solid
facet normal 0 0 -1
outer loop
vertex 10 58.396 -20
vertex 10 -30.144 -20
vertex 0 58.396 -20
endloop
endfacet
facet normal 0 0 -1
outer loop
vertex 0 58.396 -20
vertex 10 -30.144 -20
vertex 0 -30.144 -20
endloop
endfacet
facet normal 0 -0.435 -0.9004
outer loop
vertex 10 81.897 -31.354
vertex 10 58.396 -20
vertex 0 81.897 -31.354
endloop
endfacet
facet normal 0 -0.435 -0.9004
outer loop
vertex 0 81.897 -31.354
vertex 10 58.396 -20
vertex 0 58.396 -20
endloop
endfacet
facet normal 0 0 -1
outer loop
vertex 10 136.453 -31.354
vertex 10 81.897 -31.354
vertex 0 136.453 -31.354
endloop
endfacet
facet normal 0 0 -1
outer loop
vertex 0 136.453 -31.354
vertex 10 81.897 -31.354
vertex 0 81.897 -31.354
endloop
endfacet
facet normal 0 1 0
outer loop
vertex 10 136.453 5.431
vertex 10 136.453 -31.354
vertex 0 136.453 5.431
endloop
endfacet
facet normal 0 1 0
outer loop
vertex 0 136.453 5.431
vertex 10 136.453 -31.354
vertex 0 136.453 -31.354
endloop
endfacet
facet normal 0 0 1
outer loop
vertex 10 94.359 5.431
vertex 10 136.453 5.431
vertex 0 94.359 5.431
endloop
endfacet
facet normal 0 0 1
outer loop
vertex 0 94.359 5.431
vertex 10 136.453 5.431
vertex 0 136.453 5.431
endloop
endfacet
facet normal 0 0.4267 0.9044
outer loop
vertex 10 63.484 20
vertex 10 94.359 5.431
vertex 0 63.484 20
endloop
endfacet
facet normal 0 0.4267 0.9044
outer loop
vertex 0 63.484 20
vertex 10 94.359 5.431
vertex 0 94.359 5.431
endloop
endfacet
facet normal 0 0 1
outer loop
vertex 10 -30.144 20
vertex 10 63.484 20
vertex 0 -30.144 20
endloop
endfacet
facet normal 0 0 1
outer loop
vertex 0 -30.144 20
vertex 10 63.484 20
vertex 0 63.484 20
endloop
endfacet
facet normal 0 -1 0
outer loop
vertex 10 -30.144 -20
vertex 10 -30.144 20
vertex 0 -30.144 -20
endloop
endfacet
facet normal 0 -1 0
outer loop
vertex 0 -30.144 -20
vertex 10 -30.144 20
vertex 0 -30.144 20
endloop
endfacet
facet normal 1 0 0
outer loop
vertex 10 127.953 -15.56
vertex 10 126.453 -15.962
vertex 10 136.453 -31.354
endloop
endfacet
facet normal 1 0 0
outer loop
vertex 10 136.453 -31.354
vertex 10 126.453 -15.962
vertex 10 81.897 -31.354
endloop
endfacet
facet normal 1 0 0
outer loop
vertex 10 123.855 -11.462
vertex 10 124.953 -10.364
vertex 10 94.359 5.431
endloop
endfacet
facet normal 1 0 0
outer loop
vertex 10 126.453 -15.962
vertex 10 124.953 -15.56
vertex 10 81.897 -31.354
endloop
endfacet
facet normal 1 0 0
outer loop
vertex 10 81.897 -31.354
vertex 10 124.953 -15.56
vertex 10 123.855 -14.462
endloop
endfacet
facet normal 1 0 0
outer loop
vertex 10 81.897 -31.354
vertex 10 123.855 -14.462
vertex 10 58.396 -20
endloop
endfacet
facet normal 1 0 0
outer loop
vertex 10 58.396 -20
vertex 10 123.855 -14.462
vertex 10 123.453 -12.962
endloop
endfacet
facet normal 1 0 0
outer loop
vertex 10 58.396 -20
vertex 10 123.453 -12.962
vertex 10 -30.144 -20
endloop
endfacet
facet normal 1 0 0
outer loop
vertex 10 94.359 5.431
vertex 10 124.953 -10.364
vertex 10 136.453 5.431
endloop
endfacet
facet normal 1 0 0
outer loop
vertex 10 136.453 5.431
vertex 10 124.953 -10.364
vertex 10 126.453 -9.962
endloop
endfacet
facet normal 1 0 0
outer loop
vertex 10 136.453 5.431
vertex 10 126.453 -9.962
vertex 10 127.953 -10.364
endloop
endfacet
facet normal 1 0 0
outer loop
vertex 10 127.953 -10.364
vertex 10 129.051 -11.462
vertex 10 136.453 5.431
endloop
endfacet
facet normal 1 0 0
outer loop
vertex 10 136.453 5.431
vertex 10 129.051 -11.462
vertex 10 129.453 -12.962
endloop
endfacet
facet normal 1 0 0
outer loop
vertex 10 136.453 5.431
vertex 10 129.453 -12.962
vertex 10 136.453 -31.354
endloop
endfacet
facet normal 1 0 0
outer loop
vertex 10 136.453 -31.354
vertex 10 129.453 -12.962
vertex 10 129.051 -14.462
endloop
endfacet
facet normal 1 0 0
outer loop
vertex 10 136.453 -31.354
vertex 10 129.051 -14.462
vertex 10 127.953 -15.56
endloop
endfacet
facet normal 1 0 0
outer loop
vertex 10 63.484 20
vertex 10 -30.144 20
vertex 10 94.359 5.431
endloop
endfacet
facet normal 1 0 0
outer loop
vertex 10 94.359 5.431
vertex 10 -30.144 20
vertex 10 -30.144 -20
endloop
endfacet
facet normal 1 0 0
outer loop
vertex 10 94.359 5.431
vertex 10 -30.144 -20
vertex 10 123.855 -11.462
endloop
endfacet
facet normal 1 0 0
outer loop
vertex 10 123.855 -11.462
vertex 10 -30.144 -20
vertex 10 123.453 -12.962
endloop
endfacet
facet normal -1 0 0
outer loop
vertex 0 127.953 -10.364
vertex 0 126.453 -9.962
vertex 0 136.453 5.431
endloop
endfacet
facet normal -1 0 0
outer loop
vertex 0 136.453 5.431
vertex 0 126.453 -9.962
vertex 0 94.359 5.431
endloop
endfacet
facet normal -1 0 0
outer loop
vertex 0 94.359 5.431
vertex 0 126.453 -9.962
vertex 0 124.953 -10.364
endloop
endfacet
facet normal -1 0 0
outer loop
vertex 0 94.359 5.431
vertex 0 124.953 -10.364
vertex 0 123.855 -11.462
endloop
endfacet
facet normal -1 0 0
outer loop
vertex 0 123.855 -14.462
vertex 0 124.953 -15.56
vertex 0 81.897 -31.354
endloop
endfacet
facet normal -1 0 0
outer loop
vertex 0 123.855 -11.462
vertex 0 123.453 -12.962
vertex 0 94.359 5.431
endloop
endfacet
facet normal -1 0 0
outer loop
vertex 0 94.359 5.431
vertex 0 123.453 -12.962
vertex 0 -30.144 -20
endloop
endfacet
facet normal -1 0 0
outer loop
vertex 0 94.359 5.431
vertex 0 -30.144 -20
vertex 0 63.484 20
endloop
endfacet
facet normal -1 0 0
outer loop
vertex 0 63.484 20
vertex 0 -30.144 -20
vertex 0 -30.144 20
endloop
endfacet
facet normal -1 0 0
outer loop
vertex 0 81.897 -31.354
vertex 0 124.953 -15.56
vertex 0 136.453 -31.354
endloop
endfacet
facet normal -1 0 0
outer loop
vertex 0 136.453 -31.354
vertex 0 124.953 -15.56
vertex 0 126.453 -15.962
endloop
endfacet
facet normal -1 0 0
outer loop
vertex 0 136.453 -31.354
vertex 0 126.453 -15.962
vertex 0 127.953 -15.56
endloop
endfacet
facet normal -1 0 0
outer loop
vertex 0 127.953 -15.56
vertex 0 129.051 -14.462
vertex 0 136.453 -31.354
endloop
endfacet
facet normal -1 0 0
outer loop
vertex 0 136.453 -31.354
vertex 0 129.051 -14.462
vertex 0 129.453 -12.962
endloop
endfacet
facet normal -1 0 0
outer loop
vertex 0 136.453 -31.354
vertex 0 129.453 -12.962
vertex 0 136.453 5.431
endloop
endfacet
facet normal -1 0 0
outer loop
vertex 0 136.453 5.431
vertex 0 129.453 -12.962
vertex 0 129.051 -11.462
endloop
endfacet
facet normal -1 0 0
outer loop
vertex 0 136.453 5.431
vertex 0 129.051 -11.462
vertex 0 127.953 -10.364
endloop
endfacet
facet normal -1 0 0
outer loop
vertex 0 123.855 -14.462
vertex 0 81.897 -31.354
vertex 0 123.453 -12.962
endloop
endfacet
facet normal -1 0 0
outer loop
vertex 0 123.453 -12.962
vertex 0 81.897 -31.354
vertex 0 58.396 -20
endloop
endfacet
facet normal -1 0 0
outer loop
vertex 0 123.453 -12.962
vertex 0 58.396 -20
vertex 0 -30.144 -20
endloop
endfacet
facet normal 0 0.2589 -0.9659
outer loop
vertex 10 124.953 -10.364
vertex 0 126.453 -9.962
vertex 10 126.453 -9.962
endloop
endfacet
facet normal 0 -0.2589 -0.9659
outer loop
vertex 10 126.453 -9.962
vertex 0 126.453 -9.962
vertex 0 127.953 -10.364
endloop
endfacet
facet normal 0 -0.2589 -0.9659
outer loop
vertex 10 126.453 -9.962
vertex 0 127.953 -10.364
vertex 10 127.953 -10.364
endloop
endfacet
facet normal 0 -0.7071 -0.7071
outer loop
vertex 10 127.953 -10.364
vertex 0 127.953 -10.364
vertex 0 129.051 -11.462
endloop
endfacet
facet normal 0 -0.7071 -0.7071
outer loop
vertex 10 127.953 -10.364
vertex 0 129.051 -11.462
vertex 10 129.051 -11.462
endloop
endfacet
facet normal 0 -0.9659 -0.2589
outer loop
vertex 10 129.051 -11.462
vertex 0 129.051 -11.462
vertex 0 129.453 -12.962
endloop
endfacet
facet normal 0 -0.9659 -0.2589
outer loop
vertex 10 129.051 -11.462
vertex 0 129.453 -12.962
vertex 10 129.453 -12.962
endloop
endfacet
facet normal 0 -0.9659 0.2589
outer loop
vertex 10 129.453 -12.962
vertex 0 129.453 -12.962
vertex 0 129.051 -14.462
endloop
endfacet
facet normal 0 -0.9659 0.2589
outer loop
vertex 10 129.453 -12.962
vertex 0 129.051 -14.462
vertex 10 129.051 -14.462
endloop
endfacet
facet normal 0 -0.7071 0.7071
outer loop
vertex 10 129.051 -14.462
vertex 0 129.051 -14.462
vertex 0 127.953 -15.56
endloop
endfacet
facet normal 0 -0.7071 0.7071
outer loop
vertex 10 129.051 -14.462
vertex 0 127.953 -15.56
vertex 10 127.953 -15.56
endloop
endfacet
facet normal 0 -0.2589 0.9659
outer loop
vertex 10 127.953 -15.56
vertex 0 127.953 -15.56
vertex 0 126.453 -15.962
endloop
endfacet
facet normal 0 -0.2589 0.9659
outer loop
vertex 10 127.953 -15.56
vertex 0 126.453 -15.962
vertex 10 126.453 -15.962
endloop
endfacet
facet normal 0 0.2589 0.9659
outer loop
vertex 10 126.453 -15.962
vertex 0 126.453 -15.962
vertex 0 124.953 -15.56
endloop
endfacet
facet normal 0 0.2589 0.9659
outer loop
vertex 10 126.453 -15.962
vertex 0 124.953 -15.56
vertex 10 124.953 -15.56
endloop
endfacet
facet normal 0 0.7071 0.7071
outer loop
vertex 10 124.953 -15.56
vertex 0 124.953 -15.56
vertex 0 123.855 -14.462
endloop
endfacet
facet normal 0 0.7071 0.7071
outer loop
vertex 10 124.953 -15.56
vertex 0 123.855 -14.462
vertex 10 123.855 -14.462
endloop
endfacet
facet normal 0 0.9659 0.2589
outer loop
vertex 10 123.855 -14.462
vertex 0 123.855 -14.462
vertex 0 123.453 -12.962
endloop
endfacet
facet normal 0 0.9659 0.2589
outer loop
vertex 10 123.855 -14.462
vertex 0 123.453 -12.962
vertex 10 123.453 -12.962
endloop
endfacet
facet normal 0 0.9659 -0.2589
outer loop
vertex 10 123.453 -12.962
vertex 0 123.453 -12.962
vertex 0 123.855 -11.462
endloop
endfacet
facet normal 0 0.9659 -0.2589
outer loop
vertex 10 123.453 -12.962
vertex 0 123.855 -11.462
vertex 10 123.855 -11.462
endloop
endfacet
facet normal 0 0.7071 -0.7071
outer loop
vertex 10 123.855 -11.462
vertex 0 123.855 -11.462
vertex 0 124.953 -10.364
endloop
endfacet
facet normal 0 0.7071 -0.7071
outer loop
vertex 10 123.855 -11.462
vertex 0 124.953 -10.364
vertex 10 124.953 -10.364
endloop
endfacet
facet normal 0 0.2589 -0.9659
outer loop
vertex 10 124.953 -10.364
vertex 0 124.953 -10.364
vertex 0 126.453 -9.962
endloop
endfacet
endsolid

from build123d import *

# Parameters (mm, degrees)
EXTRUDE_1_DEPTH     = 10
SKETCH_2_R          = 3
CUT_EXTRUDE_1_DEPTH = 25


with BuildPart() as part:
    # Эскиз1 → Вытянуть1 (new body)
    with BuildSketch(Plane(origin=(0, 0, 0), x_dir=(0, 0, -1), z_dir=(1, 0, 0))):
        Polygon((-19.99990009, 63.483695787), (-5.430696524, 94.358841013), (-5.430696524, 136.453197444), (31.353949284, 136.453197444), (31.353949284, 81.897126676), (20.00009991, 58.395614664), (20.00009991, -30.143863535), (-19.99990009, -30.143863535), align=None)
    extrude(amount=EXTRUDE_1_DEPTH)

    # Эскиз2 → Вырез-Вытянуть1 (cut)
    with BuildSketch(Plane.ZY):
        with Locations((-12.96162638, 126.453197444)):
            Circle(SKETCH_2_R)
    extrude(amount=-CUT_EXTRUDE_1_DEPTH, mode=Mode.SUBTRACT)


solid = part.part
